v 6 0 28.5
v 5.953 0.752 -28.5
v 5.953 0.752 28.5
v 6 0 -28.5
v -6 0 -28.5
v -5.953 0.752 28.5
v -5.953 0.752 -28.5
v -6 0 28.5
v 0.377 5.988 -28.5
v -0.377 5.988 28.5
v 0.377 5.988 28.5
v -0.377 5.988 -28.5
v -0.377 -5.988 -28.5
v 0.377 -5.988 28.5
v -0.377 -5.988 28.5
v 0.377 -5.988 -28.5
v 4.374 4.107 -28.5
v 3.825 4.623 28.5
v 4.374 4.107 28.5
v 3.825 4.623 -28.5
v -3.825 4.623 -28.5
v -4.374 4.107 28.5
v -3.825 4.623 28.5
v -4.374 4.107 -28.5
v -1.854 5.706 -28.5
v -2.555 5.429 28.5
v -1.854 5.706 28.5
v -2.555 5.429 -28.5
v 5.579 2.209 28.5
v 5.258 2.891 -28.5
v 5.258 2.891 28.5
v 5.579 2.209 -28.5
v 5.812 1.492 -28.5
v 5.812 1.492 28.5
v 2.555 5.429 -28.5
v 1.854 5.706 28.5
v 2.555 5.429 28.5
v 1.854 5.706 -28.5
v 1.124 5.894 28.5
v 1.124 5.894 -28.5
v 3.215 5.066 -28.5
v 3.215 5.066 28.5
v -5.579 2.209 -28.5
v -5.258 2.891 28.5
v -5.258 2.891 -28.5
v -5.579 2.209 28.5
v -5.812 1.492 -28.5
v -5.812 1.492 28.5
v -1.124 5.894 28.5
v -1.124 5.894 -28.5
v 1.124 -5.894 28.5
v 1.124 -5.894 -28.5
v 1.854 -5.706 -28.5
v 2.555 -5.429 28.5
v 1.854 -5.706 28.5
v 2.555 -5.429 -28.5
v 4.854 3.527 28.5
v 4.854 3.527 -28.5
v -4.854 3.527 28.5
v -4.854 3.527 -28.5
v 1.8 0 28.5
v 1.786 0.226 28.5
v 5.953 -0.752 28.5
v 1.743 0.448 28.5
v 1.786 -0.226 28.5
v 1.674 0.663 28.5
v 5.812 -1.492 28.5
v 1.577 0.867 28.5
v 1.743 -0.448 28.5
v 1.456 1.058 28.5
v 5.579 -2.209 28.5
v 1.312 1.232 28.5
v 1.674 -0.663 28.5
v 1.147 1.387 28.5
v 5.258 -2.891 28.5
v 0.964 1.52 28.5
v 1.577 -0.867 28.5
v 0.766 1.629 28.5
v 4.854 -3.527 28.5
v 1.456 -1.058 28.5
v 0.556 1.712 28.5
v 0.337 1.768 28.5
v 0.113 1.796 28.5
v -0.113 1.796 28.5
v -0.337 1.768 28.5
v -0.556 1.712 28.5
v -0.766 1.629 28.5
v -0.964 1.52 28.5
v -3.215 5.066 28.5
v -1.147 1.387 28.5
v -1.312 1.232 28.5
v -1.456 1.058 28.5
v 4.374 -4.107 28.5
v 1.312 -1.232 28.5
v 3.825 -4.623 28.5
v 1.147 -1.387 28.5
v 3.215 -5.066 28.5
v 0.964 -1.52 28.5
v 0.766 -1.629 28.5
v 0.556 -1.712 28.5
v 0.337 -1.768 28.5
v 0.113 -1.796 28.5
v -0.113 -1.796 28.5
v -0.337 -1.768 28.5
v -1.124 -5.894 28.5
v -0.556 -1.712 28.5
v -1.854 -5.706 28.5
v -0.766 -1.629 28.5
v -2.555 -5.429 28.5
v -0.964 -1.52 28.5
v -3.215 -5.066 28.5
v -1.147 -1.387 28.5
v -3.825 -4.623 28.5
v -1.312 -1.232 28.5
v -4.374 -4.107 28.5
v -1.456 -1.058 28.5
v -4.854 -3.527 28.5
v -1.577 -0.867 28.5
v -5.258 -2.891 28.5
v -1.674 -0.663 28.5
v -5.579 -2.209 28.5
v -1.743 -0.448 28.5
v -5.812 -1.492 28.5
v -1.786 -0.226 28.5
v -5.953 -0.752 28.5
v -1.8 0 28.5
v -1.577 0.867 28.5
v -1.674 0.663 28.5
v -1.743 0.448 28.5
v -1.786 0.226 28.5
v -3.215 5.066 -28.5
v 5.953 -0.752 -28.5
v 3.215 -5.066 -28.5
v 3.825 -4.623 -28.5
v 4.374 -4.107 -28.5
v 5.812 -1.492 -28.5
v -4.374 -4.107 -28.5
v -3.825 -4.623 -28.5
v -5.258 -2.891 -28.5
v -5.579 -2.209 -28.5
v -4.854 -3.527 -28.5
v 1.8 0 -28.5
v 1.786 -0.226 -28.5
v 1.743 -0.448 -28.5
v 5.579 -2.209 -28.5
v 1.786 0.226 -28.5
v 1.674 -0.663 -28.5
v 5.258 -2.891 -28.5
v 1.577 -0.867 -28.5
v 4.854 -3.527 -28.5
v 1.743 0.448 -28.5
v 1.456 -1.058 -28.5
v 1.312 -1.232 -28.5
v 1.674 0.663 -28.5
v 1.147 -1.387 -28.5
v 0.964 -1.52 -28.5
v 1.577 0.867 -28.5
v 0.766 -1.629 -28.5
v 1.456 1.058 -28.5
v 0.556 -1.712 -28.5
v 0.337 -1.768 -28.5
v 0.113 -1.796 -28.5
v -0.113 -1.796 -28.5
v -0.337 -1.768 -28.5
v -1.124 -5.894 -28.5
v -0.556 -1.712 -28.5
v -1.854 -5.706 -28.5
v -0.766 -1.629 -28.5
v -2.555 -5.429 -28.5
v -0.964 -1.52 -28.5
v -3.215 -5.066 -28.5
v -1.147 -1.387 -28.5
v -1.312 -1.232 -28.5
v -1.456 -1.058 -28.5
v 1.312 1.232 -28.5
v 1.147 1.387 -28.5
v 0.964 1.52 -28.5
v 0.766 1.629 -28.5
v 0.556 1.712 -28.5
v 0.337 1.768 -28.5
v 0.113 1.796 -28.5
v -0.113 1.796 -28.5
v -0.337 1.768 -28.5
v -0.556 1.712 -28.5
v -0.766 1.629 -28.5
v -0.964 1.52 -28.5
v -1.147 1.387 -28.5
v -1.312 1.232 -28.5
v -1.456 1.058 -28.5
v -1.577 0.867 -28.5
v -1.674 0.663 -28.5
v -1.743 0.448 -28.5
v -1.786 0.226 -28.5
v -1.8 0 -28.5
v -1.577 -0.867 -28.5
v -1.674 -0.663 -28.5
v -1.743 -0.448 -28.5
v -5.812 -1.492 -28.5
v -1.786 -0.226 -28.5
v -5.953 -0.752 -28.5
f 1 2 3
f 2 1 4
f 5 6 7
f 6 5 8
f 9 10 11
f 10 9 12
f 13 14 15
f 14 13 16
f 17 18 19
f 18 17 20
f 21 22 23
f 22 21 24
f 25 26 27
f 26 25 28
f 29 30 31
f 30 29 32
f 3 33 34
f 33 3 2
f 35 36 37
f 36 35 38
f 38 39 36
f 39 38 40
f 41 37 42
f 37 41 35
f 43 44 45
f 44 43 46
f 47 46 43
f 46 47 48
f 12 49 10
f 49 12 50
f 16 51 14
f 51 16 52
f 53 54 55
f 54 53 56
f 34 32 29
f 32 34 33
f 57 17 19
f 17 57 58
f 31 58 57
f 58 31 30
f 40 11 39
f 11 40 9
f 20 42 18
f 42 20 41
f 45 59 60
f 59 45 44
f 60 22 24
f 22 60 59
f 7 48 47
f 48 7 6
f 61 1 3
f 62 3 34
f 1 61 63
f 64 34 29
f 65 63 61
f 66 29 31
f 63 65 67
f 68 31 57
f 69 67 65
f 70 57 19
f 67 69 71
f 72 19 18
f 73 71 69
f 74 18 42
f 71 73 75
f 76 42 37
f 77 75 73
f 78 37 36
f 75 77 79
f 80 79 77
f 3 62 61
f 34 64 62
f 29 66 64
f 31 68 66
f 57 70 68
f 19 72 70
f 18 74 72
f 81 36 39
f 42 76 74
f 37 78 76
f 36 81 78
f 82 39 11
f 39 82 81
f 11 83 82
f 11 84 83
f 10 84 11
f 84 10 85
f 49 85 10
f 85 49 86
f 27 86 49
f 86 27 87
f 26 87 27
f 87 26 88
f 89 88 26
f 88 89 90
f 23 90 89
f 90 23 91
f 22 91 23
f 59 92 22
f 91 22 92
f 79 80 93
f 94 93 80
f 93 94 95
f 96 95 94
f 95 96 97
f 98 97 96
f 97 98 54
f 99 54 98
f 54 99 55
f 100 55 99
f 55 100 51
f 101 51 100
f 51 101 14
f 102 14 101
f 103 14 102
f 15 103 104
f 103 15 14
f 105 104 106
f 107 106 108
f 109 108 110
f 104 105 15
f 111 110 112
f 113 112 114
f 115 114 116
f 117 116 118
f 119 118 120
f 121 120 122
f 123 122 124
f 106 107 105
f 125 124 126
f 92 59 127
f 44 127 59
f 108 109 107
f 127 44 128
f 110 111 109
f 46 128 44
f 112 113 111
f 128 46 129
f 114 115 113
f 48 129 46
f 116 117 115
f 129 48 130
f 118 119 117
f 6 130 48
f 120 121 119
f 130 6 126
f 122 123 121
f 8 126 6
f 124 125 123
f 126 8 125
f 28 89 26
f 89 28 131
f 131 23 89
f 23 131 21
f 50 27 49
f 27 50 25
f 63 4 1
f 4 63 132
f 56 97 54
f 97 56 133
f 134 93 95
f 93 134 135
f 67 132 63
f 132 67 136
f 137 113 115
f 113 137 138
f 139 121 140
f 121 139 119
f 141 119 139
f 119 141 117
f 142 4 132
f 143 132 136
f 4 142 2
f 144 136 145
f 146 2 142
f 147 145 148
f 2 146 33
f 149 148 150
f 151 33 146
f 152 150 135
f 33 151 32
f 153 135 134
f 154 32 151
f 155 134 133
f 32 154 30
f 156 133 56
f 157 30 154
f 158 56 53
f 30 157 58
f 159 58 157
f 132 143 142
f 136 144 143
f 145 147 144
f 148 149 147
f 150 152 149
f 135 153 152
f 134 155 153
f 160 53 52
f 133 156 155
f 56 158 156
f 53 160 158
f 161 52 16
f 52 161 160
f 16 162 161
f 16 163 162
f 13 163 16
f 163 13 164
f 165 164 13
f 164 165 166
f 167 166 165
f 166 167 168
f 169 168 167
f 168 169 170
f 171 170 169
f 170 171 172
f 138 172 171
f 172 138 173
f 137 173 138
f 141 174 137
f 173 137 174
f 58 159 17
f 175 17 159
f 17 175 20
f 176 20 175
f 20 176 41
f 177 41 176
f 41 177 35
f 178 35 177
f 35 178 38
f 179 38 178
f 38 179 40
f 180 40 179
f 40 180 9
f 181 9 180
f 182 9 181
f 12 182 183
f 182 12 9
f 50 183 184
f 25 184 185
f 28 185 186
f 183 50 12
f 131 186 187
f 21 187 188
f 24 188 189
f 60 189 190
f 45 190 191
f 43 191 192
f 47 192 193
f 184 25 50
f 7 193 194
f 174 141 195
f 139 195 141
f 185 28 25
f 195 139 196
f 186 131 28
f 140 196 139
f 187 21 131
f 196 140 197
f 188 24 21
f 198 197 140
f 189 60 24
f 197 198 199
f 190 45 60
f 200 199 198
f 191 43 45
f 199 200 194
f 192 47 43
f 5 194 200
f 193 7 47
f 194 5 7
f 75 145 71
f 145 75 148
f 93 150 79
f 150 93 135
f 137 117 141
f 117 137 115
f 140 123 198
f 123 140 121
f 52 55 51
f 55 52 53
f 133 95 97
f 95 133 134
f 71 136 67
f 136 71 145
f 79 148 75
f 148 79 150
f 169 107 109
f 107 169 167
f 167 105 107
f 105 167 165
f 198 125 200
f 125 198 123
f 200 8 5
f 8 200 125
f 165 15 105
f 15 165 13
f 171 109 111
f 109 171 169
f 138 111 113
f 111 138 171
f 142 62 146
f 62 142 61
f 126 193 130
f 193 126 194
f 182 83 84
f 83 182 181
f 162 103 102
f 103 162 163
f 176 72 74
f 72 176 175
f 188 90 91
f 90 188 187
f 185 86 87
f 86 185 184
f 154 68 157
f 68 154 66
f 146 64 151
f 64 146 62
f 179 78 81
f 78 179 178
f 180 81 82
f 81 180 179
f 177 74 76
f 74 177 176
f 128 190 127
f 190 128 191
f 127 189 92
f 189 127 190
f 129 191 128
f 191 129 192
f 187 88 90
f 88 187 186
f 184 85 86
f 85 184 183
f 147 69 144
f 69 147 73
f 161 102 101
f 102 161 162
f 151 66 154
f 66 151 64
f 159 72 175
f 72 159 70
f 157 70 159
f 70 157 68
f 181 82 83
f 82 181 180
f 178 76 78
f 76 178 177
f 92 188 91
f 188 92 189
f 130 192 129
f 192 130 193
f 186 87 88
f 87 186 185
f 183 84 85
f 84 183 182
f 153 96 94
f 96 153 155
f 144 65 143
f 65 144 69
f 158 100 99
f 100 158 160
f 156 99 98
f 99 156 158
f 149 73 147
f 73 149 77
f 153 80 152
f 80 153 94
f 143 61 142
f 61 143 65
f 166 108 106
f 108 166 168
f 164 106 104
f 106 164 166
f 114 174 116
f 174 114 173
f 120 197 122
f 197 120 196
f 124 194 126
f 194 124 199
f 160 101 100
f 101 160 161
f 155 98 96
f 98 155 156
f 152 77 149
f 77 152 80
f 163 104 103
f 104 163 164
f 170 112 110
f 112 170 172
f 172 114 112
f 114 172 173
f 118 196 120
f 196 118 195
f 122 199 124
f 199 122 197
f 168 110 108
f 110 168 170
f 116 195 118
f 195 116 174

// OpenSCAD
$fn = 50;


difference() {
	union() {
		translate(v = [0, 0, -28.5000000000]) {
			cylinder(h = 57, r = 6.0000000000);
		}
	}
	union() {
		translate(v = [0, 0, -100.0000000000]) {
			cylinder(h = 200, r = 1.8000000000);
		}
	}
}
